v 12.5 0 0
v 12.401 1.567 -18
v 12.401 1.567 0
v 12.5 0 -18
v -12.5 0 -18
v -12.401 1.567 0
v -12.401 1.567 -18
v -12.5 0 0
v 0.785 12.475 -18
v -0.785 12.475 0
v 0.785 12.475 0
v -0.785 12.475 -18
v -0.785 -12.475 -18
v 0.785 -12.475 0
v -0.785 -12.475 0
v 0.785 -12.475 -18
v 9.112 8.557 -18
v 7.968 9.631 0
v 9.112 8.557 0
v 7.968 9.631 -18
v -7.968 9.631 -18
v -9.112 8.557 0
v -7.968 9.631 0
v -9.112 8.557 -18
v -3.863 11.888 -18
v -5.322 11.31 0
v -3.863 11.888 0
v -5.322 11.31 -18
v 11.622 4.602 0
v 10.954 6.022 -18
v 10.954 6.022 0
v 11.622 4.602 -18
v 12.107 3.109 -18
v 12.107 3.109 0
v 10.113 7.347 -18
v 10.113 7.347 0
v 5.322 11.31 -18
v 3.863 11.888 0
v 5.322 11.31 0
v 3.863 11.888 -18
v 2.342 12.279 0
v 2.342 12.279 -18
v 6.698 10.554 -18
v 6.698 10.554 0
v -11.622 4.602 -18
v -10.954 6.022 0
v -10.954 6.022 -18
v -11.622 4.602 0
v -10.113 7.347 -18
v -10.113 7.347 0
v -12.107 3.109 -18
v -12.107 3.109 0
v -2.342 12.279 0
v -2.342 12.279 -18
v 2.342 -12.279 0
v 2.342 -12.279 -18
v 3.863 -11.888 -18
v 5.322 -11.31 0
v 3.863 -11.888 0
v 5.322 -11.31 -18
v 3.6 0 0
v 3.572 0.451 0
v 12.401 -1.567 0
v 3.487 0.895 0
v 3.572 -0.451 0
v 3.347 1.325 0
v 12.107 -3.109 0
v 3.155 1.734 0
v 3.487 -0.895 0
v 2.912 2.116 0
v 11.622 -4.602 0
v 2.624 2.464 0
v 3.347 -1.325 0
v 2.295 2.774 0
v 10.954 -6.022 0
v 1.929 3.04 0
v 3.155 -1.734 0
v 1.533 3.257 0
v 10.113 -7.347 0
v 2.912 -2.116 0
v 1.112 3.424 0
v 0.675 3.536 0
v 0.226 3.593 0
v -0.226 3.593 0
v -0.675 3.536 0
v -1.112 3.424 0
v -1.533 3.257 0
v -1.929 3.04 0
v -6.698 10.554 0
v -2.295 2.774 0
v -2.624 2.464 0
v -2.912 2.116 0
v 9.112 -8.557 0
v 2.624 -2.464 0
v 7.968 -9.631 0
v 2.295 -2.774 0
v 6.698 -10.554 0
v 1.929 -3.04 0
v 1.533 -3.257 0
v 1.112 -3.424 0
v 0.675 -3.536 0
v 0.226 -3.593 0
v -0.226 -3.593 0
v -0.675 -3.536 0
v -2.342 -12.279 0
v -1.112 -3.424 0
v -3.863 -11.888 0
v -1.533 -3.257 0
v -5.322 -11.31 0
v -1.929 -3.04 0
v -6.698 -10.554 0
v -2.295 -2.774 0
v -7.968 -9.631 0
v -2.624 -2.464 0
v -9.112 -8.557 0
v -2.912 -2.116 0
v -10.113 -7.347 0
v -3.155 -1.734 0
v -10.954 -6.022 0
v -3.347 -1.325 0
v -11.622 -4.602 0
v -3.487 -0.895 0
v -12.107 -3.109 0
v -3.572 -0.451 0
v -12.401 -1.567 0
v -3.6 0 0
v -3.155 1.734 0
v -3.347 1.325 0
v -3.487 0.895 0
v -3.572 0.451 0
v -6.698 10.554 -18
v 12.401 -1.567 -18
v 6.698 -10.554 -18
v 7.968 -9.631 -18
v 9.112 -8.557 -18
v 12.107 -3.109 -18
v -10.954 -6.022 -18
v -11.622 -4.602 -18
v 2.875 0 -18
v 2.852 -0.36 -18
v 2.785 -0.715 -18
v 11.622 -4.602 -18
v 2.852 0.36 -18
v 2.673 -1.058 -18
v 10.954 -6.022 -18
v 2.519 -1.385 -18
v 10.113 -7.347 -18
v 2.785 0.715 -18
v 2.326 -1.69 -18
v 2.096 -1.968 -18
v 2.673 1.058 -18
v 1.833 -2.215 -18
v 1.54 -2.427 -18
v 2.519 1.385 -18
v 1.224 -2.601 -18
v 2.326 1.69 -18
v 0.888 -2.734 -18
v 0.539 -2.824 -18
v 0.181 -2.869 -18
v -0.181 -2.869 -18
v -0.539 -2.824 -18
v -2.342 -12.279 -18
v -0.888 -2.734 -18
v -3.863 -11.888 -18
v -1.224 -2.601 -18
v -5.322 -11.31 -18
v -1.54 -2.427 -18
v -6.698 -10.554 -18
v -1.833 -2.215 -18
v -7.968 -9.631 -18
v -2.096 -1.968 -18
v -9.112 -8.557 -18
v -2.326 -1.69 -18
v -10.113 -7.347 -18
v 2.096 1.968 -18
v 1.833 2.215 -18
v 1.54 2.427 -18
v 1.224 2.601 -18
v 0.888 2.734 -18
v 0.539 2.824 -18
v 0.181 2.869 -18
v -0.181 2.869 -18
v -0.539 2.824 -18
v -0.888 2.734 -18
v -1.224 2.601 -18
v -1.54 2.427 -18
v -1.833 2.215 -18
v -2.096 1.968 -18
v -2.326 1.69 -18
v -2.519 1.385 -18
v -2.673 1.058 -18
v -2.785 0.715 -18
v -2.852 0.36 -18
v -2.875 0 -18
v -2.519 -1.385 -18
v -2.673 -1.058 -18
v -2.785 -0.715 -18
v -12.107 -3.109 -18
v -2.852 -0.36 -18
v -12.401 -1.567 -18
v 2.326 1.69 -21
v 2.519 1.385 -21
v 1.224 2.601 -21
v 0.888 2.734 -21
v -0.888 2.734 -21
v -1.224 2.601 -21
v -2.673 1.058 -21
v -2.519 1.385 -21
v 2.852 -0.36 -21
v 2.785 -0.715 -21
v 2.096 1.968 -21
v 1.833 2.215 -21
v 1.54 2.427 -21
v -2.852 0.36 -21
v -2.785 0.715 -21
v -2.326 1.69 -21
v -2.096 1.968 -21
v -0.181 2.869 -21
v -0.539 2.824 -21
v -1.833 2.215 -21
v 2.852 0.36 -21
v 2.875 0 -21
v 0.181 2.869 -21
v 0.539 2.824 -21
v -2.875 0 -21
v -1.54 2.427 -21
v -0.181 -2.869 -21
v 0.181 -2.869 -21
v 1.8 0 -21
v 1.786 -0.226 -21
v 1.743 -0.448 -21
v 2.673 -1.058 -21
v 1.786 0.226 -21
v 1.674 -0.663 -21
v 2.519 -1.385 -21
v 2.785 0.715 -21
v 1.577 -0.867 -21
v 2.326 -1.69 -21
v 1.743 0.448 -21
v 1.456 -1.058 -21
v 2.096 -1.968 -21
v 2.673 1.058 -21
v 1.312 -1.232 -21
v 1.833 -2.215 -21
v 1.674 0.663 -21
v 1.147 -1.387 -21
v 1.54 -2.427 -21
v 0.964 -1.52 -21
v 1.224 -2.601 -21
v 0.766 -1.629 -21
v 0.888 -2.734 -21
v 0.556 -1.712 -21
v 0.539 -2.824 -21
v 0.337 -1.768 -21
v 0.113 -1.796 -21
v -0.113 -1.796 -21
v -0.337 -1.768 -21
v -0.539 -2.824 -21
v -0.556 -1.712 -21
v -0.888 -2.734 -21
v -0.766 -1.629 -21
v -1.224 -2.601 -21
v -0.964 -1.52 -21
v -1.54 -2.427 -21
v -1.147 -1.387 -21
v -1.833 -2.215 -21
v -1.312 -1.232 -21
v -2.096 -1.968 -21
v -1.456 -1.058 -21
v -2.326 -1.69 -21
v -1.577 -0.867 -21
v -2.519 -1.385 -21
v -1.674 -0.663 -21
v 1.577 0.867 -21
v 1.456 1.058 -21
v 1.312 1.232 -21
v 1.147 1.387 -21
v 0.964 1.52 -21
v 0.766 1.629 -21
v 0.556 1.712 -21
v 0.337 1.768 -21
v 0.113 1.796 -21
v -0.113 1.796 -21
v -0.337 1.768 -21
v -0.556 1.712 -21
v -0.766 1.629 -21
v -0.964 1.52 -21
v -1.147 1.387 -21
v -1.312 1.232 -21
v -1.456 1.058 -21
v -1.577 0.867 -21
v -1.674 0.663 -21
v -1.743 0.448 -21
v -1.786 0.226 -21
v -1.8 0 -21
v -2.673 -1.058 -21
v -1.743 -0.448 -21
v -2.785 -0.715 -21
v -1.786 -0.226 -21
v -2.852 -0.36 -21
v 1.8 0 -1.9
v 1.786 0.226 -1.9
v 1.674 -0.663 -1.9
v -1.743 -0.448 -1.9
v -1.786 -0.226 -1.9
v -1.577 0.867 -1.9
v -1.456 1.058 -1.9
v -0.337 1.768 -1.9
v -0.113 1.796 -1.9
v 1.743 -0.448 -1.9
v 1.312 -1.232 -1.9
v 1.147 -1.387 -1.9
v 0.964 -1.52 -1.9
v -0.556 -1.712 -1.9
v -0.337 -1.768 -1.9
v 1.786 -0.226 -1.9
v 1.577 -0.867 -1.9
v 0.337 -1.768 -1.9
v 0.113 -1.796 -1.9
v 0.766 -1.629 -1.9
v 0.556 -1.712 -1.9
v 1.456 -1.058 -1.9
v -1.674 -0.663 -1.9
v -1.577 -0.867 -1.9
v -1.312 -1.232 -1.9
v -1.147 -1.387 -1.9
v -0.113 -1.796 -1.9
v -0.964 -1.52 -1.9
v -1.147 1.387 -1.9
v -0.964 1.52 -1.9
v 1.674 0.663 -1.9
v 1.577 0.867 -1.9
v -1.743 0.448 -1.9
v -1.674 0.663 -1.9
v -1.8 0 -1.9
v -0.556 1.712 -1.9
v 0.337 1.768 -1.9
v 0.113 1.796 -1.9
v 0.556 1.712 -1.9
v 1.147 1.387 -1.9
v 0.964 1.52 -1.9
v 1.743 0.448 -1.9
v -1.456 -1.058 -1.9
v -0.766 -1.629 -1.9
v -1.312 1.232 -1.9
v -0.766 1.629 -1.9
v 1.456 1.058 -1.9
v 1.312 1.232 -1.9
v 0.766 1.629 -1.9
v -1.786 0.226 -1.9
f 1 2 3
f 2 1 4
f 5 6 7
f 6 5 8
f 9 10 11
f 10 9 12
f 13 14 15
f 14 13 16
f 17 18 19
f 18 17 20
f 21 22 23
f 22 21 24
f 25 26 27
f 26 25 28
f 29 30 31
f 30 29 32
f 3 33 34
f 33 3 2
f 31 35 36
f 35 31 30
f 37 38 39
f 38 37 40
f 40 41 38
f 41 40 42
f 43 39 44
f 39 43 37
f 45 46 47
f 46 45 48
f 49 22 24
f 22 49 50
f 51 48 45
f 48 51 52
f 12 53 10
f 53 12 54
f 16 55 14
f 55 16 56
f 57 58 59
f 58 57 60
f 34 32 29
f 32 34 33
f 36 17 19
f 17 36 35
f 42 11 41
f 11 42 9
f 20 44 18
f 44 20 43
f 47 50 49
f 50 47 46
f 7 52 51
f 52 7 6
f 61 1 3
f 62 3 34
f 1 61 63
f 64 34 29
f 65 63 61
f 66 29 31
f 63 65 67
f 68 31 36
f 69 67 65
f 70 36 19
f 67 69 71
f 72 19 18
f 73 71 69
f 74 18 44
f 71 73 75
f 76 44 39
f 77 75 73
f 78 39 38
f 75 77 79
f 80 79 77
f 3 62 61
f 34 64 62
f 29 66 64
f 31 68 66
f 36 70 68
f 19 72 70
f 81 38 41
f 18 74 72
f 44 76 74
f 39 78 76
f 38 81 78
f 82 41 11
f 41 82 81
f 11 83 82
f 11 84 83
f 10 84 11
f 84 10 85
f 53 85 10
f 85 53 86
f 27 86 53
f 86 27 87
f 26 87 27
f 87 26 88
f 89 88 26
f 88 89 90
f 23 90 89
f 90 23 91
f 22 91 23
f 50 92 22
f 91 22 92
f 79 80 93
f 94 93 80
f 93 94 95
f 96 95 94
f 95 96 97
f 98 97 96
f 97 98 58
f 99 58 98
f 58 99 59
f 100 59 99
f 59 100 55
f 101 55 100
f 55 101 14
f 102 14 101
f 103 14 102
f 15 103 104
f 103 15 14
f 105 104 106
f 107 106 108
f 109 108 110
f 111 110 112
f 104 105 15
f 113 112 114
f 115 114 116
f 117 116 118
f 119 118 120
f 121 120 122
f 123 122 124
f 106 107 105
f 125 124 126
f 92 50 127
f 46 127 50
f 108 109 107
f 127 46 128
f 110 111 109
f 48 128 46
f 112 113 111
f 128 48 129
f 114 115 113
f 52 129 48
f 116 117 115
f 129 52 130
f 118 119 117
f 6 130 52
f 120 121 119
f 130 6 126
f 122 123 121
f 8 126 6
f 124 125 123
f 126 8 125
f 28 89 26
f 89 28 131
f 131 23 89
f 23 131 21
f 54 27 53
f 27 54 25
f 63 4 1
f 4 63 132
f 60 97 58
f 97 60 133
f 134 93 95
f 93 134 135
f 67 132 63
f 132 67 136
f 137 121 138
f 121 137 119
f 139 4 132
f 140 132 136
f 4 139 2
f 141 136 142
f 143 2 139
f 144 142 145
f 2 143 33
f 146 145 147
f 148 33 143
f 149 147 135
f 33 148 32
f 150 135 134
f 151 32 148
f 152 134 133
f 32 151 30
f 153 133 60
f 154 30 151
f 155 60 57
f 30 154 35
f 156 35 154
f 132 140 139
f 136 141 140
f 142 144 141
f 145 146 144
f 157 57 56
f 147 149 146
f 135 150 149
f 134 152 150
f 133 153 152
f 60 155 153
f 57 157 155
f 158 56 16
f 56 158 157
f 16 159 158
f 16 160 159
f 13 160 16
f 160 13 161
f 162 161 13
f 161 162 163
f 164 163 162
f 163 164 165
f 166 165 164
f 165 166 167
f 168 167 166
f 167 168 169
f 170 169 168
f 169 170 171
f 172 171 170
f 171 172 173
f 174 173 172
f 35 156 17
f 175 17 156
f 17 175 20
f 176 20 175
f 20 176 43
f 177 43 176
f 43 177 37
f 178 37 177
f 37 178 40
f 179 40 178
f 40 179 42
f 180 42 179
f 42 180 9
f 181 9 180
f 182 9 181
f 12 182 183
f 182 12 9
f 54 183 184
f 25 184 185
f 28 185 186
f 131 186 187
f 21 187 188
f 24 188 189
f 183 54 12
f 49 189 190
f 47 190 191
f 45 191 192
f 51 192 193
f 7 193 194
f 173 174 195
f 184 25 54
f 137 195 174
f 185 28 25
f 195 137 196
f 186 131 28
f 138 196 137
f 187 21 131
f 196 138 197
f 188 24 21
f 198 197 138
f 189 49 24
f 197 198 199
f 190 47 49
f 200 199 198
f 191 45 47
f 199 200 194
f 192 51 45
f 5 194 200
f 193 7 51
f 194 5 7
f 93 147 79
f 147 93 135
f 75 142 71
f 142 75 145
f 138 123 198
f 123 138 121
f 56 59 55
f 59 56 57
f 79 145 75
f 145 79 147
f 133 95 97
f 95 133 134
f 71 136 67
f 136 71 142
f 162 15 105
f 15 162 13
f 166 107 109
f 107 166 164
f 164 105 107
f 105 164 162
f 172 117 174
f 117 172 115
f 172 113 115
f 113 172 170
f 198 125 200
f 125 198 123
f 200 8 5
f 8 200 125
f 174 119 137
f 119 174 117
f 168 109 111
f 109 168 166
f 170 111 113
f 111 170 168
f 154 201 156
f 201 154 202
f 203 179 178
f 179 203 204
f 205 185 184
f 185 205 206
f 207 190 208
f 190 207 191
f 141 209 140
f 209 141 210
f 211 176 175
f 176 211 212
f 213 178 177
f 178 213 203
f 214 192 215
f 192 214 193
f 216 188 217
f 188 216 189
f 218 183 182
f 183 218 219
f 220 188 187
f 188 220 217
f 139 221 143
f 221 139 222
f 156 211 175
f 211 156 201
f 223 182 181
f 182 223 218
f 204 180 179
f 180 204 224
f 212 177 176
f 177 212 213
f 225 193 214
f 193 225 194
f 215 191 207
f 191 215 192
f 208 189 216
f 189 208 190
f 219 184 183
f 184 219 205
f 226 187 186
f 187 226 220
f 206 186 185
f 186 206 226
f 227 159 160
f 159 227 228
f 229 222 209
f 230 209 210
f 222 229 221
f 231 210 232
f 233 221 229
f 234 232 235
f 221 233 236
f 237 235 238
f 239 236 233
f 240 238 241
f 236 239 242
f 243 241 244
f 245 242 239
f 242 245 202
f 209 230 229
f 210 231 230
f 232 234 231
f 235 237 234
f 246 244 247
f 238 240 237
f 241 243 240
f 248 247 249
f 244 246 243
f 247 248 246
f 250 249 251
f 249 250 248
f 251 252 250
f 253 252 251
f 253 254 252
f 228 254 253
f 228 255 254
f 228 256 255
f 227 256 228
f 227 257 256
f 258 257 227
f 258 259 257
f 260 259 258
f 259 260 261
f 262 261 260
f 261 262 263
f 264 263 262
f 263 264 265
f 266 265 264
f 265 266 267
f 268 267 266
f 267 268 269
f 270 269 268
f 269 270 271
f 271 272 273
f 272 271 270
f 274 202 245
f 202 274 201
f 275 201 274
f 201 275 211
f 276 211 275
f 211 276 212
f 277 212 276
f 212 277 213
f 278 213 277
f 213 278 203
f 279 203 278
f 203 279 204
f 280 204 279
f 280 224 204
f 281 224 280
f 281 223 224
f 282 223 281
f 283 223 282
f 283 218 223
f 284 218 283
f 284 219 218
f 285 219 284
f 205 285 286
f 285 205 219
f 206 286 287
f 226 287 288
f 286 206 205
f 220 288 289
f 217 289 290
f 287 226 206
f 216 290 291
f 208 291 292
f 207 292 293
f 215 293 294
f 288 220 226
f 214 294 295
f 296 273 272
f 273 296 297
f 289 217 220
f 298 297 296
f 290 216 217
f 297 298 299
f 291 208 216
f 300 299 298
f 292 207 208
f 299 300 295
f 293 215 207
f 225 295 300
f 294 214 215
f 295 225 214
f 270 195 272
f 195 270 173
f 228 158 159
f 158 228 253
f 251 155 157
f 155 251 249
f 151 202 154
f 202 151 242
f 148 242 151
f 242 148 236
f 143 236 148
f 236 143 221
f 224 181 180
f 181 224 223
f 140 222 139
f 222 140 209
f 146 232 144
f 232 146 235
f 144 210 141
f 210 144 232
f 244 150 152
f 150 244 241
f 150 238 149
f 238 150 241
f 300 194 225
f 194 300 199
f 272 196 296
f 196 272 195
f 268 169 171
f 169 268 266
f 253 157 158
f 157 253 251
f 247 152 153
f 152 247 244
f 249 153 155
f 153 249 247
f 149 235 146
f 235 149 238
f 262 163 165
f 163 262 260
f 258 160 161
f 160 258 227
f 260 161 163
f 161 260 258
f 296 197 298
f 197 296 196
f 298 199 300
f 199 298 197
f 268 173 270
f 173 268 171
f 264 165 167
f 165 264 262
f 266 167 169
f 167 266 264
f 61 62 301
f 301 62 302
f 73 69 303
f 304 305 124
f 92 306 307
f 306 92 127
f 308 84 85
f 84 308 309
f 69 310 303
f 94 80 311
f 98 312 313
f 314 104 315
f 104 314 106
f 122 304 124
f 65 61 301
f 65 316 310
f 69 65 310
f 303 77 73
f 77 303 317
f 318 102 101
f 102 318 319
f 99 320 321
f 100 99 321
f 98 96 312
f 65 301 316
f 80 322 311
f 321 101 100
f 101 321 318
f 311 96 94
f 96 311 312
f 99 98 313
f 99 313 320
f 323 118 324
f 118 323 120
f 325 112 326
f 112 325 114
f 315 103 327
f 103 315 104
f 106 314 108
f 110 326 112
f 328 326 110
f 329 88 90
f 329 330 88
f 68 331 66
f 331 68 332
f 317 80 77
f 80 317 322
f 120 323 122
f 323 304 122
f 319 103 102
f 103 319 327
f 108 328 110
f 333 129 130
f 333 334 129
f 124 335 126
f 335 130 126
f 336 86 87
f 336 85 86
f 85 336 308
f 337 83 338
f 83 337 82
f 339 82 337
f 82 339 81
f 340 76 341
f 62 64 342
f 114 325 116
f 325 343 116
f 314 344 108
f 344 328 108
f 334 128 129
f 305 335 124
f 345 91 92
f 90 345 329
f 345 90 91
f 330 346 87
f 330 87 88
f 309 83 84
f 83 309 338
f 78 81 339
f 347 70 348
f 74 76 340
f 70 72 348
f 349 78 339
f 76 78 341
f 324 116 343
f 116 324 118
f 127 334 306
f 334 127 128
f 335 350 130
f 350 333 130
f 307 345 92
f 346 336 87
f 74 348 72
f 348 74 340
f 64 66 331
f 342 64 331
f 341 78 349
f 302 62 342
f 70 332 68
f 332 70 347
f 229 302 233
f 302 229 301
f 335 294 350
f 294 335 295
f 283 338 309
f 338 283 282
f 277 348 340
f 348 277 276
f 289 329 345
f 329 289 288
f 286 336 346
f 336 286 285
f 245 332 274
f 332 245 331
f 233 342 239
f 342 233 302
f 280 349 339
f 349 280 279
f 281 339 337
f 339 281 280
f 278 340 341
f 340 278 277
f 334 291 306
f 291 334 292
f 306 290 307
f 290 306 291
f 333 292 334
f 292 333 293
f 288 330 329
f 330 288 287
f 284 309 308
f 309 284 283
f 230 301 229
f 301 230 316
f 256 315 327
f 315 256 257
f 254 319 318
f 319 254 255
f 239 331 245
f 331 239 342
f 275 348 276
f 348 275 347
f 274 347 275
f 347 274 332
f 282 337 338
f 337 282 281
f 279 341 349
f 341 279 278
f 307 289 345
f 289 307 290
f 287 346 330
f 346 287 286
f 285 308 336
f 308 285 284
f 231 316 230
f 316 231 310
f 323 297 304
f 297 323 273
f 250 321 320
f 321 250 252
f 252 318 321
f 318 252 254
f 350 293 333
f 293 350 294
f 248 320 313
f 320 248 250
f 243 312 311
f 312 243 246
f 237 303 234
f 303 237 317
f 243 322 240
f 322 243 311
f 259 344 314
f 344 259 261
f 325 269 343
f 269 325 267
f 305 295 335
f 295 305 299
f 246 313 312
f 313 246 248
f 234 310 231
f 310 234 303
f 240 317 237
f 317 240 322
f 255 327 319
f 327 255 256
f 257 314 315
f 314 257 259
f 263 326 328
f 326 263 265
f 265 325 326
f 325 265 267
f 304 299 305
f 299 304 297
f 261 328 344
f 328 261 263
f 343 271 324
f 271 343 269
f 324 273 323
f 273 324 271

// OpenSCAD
$fn = 50;

difference() {
	union() {
		translate(v = [0, 0, -18.0]) {
			cylinder(h = 18, r = 12.5);
		}
		#translate(v = [0, 0, -21.0]) {
			cylinder(h = 21, r = 2.875);
		}
	}
	union() {
		translate(v = [0, 0, 0]) {
			rotate(a = [0, 0, 0]) {
				difference() {
					union() {
						translate(v = [0, 0, -21.0]) {
							cylinder(h = 21, r = 1.5);
						}
						translate(v = [0, 0, -1.9]) {
							cylinder(h = 1.9, r1 = 1.8, r2 = 3.6);
						}
						translate(v = [0, 0, -21.0]) {
							cylinder(h = 21, r = 1.8);
						}
						translate(v = [0, 0, -21.0]) {
							cylinder(h = 21, r = 1.5);
						}
					}
					union();
				}
			}
		}
	}
}
